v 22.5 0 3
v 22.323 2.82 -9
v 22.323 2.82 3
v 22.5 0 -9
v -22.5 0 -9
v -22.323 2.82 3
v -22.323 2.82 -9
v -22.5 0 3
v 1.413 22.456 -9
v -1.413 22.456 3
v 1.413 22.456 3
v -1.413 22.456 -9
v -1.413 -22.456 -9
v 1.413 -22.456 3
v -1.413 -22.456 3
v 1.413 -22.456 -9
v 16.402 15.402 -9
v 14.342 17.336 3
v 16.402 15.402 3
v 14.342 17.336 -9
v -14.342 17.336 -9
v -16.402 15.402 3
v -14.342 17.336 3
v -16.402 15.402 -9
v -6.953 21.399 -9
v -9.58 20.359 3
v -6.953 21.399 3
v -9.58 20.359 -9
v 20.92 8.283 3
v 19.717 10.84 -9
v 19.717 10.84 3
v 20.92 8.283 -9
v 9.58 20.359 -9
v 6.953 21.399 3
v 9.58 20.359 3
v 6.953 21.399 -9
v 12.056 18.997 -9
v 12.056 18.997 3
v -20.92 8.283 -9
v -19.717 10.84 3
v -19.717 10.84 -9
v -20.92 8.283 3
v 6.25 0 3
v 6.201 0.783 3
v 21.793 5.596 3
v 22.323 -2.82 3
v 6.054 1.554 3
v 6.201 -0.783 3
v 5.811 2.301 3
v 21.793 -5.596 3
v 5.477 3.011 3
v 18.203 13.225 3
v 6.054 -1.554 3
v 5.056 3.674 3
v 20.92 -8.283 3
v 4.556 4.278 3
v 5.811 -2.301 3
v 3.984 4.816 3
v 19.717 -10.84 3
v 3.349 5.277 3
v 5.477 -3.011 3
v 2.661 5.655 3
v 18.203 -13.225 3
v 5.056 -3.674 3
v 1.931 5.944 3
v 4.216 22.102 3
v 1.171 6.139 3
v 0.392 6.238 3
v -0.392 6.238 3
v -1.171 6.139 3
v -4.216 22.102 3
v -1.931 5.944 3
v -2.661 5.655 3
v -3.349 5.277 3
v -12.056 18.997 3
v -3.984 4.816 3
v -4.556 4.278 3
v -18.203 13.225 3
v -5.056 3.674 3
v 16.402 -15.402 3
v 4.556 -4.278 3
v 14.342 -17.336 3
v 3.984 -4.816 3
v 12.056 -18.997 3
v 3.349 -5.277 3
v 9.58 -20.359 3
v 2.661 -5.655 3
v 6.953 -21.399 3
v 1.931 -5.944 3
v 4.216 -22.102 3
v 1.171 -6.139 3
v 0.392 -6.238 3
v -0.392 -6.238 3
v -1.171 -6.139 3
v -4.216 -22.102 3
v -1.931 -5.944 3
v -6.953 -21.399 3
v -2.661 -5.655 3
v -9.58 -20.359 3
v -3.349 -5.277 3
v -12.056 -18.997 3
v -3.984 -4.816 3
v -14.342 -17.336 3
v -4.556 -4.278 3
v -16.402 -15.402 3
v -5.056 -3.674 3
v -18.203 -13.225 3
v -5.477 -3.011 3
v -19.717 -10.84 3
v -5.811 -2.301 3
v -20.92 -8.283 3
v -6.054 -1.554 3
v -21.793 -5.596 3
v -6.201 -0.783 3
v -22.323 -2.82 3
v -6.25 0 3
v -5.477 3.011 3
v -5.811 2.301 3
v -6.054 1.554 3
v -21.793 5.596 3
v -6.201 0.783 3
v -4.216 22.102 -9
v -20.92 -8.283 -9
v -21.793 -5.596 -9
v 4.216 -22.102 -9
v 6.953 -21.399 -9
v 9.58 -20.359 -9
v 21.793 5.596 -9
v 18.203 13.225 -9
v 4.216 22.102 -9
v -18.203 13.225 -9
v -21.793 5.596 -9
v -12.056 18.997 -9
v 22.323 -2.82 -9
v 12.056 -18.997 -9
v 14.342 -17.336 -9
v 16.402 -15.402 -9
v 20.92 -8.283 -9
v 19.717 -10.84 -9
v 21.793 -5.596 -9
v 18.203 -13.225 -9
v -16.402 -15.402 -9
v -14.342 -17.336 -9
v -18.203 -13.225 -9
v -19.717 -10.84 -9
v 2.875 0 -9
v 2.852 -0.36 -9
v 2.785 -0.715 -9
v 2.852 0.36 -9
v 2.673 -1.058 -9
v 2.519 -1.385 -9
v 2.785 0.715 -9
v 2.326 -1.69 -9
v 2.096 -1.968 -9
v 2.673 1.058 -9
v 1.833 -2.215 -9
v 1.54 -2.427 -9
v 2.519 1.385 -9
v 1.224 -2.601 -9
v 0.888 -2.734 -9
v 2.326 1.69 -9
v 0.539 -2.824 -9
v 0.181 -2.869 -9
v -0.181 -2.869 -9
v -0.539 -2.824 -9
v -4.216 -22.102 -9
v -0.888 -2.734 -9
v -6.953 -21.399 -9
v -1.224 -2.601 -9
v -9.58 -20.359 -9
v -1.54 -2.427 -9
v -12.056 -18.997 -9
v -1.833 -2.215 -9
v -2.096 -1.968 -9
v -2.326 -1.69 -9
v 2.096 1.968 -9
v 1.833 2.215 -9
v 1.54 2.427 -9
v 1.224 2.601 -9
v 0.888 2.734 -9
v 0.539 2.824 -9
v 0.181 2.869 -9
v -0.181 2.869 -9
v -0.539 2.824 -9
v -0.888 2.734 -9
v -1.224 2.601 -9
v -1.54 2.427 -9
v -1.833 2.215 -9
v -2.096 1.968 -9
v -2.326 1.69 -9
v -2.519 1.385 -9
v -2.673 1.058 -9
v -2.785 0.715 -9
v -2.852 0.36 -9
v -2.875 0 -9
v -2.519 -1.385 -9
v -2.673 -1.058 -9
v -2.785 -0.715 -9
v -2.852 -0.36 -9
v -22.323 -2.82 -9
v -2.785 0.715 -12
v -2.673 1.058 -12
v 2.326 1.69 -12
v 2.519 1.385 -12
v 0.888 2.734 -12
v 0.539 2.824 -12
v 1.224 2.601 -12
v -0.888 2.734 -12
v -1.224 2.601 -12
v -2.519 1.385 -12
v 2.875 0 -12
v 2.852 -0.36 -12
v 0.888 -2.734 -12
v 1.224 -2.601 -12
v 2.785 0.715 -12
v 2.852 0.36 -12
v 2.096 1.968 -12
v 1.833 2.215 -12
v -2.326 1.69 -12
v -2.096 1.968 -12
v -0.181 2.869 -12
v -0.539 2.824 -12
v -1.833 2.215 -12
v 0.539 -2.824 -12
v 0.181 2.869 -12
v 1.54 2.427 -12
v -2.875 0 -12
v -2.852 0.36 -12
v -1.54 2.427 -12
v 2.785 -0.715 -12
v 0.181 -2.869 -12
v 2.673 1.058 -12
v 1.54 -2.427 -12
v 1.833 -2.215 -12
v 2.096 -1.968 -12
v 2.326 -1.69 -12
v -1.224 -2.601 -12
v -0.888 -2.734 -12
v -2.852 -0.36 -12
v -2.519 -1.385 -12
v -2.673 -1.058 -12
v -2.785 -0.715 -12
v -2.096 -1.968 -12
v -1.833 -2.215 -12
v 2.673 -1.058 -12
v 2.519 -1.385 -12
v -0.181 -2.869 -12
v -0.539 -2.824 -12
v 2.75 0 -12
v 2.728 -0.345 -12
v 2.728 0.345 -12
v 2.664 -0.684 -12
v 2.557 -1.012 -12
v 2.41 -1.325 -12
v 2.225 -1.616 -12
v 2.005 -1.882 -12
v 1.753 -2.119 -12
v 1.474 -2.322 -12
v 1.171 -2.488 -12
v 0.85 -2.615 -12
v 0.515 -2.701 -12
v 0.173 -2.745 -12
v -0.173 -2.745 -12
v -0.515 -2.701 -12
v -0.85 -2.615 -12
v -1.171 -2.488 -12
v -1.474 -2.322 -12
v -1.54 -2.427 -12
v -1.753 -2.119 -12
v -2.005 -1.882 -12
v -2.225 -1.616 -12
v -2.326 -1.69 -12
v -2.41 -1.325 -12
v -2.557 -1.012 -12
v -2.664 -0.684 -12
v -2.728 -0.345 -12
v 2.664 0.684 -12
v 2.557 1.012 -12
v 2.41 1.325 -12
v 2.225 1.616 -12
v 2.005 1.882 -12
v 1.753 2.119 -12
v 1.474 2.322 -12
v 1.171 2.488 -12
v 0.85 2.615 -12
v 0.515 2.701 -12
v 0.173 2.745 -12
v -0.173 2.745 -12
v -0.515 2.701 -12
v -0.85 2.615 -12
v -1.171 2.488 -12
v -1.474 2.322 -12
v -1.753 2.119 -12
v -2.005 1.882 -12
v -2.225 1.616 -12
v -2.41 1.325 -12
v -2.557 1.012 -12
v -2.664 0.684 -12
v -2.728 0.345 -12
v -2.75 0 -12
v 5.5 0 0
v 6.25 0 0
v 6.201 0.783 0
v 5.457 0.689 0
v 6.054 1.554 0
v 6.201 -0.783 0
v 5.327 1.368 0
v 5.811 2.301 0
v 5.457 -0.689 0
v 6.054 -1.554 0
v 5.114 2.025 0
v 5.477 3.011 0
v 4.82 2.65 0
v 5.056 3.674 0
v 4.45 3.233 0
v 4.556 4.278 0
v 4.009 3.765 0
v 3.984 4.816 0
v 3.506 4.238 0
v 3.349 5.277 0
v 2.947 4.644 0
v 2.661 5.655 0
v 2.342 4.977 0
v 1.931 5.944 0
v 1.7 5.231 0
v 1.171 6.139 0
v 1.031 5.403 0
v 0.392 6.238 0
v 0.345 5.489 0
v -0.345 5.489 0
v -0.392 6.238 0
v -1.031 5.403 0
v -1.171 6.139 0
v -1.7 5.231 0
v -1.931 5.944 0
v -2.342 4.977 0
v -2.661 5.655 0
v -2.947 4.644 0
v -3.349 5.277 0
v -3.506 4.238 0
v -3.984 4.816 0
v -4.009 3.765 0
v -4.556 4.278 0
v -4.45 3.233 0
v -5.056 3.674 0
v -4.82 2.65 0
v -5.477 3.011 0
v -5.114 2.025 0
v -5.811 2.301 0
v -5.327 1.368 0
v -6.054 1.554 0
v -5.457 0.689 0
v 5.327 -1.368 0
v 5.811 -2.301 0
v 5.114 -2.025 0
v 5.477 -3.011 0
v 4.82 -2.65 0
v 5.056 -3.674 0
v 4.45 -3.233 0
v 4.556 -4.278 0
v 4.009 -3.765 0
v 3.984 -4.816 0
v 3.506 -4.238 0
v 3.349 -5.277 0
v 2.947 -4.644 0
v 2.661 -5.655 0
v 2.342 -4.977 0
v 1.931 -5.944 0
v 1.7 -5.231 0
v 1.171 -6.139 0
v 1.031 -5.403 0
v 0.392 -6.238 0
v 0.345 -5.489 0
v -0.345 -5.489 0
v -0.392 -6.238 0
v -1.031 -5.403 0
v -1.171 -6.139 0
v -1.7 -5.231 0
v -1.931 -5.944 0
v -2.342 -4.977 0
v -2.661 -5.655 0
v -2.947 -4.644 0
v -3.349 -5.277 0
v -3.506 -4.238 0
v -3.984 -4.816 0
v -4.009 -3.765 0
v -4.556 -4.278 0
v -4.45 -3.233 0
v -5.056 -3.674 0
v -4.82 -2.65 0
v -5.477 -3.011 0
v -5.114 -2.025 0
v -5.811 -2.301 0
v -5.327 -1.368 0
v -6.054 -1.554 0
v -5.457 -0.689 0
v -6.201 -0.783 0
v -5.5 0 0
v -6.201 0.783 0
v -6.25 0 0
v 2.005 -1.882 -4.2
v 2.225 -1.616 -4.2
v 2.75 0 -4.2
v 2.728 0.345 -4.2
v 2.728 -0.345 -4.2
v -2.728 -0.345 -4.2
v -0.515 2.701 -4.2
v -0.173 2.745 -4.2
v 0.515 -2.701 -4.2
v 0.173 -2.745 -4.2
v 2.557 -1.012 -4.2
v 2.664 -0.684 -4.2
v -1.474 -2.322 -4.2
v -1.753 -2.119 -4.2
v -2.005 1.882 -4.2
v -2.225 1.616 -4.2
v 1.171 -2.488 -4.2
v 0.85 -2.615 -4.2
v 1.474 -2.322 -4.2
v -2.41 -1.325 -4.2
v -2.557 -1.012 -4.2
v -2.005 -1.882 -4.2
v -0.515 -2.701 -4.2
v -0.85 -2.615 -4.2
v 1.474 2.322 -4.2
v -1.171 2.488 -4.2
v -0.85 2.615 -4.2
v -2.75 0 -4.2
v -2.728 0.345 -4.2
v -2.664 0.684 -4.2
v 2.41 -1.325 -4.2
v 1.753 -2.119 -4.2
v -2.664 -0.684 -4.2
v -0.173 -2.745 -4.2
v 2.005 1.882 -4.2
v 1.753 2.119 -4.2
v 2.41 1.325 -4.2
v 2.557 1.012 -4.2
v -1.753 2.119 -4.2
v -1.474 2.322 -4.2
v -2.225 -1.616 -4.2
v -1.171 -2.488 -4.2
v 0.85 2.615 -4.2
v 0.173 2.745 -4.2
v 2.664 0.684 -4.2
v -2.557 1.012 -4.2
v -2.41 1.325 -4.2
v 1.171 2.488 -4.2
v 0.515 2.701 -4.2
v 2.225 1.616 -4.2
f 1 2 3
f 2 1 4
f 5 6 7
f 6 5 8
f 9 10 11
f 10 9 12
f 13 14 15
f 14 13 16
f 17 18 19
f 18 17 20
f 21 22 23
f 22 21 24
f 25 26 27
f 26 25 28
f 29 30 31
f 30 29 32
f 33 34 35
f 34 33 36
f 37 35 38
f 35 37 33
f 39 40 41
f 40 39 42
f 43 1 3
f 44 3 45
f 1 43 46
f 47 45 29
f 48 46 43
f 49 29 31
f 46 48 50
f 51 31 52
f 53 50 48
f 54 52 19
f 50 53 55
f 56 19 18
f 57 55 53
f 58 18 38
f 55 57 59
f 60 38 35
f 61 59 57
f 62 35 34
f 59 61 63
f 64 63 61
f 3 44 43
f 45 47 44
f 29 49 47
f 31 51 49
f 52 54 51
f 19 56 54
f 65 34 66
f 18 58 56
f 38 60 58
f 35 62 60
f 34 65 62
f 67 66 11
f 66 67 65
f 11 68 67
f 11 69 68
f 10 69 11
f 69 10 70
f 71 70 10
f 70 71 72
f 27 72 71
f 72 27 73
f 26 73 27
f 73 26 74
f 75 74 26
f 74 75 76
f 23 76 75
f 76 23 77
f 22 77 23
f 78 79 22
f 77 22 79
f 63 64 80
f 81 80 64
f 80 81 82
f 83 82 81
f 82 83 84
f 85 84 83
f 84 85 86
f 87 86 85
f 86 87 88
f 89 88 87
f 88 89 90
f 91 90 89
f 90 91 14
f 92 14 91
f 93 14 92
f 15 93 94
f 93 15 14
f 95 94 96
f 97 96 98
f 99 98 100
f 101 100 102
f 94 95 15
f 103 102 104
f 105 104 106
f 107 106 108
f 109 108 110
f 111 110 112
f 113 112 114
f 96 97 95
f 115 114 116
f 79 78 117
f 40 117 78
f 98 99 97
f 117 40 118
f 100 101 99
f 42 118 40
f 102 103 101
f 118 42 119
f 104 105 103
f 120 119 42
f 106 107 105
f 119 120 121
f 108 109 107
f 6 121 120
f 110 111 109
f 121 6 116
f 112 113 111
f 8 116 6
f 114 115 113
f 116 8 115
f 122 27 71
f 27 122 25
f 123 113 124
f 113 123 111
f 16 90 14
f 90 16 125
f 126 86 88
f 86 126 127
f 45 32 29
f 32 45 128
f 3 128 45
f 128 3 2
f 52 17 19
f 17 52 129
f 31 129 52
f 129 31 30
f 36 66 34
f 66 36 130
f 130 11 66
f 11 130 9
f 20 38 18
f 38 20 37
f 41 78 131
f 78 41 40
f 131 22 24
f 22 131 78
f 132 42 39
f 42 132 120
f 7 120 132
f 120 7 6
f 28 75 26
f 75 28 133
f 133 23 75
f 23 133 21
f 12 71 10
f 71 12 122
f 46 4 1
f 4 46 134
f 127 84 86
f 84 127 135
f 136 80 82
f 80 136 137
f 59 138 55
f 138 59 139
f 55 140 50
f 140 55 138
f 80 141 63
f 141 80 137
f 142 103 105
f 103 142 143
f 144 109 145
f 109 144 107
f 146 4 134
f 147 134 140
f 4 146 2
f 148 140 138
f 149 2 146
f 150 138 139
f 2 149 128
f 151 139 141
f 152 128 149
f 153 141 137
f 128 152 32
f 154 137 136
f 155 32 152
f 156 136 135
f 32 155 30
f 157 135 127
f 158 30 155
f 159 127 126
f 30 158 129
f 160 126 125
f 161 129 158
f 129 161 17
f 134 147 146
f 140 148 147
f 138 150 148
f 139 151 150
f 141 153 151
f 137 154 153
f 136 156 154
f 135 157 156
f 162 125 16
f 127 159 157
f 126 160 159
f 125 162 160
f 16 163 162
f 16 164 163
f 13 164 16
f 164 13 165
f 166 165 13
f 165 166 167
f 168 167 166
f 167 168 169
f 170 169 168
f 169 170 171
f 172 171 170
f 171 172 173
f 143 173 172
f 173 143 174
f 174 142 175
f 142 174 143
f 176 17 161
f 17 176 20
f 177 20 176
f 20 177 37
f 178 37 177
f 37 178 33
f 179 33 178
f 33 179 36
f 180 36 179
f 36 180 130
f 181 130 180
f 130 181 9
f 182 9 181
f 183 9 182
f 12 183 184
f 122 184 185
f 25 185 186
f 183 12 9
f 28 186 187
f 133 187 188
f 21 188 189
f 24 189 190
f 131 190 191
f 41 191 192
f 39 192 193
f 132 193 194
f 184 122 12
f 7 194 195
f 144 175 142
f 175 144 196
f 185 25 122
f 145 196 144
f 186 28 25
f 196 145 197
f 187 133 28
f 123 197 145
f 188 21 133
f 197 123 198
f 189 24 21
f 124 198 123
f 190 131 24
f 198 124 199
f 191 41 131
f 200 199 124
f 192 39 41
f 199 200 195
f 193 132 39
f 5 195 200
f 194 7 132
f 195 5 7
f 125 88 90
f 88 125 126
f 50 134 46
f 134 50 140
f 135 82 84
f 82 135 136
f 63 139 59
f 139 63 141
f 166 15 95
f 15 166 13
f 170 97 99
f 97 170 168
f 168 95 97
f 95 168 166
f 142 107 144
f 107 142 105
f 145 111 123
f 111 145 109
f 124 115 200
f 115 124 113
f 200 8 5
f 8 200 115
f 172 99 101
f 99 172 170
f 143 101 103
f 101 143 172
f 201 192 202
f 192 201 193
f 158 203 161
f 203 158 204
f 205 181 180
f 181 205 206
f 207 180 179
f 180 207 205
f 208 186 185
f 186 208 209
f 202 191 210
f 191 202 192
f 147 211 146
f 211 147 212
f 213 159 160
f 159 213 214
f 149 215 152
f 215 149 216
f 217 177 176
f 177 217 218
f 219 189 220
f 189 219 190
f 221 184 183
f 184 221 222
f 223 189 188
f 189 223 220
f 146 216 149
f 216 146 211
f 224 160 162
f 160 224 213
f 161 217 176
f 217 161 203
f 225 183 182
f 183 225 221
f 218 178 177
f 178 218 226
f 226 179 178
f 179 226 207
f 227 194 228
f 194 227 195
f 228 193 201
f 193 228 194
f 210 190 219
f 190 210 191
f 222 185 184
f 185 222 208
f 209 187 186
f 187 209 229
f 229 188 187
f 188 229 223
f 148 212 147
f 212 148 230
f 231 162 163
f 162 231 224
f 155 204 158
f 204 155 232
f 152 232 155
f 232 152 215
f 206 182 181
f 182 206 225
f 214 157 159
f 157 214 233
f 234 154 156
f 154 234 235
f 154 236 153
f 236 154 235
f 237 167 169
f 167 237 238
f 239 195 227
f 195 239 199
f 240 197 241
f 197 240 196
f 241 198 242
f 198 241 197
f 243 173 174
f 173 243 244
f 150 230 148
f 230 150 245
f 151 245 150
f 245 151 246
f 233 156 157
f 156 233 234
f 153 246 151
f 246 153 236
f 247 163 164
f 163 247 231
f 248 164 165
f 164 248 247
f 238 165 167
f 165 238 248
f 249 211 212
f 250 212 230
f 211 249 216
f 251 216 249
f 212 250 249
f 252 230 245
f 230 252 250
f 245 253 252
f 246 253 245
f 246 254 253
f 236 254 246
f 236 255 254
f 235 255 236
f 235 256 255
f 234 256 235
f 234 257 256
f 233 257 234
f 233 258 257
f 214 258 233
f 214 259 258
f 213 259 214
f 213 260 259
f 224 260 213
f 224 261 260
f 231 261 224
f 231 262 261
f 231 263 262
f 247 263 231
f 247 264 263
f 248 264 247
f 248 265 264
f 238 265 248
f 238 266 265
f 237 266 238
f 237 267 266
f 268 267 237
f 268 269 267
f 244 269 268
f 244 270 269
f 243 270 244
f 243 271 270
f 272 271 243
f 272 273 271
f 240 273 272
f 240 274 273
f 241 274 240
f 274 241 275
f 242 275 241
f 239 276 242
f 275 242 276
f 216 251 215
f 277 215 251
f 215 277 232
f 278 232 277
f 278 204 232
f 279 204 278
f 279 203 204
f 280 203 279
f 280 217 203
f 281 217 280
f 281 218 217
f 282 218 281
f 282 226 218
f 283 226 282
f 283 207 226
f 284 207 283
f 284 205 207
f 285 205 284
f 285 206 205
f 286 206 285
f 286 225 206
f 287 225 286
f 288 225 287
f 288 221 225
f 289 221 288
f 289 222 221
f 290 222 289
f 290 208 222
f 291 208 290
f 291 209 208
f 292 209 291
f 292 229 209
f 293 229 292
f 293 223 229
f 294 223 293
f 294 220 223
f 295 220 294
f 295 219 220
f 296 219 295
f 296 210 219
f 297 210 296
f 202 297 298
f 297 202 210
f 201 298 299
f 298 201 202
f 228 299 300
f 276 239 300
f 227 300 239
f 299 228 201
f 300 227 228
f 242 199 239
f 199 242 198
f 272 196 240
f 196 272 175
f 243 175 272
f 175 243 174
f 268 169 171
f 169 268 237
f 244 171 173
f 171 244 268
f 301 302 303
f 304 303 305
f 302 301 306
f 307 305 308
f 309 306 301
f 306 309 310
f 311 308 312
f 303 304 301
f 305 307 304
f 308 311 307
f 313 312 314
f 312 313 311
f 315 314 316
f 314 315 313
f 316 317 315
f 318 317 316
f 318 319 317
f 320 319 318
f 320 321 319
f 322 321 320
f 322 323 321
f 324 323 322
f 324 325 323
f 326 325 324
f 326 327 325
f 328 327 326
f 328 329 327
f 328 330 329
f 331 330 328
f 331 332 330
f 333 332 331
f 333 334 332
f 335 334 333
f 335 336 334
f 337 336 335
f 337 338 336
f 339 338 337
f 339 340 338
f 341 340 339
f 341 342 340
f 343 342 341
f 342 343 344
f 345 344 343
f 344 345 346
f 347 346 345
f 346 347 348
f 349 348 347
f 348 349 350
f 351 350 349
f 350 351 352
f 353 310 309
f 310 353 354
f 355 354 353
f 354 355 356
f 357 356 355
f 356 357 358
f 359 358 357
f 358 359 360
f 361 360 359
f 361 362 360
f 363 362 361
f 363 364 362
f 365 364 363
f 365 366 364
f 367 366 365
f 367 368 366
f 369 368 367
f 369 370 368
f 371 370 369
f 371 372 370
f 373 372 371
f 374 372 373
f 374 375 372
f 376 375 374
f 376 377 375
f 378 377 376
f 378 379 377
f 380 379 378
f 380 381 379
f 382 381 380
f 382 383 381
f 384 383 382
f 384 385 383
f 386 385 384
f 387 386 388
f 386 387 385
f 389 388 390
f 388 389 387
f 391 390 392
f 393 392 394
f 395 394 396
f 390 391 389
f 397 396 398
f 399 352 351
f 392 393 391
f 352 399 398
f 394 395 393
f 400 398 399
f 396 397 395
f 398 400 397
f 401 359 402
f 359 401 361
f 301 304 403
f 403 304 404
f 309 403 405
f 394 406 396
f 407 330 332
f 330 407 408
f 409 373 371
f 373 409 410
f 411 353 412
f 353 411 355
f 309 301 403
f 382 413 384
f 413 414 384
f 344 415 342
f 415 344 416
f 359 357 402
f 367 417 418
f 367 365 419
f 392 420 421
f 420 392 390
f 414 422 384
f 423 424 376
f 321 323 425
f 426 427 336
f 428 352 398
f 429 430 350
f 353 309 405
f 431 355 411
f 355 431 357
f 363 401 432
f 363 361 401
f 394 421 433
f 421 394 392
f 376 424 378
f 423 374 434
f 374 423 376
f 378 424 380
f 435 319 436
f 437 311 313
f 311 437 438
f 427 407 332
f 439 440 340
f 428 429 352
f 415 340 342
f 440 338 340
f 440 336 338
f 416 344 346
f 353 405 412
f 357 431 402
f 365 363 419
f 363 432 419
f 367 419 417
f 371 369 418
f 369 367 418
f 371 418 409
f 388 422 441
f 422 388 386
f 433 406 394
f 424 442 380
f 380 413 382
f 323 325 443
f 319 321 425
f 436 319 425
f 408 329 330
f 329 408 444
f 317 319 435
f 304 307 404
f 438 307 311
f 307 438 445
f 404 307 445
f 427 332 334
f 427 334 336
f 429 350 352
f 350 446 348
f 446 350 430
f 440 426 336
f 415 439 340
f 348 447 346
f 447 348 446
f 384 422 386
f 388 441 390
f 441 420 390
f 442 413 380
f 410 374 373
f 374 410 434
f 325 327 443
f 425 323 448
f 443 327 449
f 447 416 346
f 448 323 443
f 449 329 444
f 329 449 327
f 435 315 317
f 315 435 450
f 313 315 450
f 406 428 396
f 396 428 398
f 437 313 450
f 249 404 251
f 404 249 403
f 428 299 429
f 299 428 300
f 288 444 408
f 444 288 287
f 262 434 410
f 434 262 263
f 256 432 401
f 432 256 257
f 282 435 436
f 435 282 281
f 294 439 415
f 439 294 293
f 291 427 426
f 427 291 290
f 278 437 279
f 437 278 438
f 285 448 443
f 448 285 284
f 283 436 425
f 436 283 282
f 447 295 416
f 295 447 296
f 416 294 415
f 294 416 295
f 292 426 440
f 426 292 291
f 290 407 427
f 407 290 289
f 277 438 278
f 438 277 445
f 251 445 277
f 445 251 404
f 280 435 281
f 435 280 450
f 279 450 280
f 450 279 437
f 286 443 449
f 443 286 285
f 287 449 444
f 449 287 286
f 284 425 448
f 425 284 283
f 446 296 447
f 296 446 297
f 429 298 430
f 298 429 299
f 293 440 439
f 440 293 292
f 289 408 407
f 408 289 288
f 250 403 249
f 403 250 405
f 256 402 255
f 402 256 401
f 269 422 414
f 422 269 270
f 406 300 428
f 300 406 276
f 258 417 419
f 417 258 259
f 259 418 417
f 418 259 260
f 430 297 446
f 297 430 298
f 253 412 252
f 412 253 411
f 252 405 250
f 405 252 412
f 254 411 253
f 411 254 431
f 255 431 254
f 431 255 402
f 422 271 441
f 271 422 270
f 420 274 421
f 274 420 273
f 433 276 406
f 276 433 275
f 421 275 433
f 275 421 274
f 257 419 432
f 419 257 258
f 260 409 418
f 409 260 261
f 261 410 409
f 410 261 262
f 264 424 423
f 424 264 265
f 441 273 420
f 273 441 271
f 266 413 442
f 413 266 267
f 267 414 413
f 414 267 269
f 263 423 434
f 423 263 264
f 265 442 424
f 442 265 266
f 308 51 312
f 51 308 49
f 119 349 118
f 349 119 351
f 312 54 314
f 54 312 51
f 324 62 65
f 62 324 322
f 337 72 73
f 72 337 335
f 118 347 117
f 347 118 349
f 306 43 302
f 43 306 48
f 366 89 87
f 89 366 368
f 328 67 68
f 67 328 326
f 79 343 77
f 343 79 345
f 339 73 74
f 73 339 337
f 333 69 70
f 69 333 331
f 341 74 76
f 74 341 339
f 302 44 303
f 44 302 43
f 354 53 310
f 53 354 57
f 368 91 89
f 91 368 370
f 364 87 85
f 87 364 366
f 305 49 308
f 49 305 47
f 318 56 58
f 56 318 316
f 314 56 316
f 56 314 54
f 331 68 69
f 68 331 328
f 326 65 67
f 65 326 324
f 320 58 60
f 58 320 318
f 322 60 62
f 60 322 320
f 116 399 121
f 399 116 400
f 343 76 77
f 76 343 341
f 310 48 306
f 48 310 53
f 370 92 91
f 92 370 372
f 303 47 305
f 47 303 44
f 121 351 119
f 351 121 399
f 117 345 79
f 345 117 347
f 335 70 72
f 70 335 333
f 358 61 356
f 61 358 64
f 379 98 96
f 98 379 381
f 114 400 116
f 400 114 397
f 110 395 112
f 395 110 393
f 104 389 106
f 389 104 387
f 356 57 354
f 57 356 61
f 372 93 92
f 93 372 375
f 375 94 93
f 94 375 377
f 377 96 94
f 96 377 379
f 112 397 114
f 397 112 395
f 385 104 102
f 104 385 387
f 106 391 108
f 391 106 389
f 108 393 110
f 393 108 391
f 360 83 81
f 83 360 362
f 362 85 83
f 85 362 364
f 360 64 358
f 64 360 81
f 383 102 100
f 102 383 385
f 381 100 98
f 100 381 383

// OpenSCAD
$fn = 50;

difference() {
	union() {
		translate(v = [0, 0, -9.0]) {
			cylinder(h = 12, r = 22.5);
		}
		#translate(v = [0, 0, -12.0]) {
			cylinder(h = 12, r = 2.875);
		}
	}
	union() {
		translate(v = [0, 0, 0]) {
			rotate(a = [0, 0, 0]) {
				difference() {
					union() {
						translate(v = [0, 0, -12.0]) {
							cylinder(h = 12, r = 2.25);
						}
						translate(v = [0, 0, -4.2]) {
							cylinder(h = 4.2, r1 = 2.75, r2 = 5.5);
						}
						translate(v = [0, 0, -12.0]) {
							cylinder(h = 12, r = 2.75);
						}
						translate(v = [0, 0, -12.0]) {
							cylinder(h = 12, r = 2.25);
						}
					}
					union();
				}
			}
		}
		#cylinder(h = 3, r = 6.25);
	}
}
